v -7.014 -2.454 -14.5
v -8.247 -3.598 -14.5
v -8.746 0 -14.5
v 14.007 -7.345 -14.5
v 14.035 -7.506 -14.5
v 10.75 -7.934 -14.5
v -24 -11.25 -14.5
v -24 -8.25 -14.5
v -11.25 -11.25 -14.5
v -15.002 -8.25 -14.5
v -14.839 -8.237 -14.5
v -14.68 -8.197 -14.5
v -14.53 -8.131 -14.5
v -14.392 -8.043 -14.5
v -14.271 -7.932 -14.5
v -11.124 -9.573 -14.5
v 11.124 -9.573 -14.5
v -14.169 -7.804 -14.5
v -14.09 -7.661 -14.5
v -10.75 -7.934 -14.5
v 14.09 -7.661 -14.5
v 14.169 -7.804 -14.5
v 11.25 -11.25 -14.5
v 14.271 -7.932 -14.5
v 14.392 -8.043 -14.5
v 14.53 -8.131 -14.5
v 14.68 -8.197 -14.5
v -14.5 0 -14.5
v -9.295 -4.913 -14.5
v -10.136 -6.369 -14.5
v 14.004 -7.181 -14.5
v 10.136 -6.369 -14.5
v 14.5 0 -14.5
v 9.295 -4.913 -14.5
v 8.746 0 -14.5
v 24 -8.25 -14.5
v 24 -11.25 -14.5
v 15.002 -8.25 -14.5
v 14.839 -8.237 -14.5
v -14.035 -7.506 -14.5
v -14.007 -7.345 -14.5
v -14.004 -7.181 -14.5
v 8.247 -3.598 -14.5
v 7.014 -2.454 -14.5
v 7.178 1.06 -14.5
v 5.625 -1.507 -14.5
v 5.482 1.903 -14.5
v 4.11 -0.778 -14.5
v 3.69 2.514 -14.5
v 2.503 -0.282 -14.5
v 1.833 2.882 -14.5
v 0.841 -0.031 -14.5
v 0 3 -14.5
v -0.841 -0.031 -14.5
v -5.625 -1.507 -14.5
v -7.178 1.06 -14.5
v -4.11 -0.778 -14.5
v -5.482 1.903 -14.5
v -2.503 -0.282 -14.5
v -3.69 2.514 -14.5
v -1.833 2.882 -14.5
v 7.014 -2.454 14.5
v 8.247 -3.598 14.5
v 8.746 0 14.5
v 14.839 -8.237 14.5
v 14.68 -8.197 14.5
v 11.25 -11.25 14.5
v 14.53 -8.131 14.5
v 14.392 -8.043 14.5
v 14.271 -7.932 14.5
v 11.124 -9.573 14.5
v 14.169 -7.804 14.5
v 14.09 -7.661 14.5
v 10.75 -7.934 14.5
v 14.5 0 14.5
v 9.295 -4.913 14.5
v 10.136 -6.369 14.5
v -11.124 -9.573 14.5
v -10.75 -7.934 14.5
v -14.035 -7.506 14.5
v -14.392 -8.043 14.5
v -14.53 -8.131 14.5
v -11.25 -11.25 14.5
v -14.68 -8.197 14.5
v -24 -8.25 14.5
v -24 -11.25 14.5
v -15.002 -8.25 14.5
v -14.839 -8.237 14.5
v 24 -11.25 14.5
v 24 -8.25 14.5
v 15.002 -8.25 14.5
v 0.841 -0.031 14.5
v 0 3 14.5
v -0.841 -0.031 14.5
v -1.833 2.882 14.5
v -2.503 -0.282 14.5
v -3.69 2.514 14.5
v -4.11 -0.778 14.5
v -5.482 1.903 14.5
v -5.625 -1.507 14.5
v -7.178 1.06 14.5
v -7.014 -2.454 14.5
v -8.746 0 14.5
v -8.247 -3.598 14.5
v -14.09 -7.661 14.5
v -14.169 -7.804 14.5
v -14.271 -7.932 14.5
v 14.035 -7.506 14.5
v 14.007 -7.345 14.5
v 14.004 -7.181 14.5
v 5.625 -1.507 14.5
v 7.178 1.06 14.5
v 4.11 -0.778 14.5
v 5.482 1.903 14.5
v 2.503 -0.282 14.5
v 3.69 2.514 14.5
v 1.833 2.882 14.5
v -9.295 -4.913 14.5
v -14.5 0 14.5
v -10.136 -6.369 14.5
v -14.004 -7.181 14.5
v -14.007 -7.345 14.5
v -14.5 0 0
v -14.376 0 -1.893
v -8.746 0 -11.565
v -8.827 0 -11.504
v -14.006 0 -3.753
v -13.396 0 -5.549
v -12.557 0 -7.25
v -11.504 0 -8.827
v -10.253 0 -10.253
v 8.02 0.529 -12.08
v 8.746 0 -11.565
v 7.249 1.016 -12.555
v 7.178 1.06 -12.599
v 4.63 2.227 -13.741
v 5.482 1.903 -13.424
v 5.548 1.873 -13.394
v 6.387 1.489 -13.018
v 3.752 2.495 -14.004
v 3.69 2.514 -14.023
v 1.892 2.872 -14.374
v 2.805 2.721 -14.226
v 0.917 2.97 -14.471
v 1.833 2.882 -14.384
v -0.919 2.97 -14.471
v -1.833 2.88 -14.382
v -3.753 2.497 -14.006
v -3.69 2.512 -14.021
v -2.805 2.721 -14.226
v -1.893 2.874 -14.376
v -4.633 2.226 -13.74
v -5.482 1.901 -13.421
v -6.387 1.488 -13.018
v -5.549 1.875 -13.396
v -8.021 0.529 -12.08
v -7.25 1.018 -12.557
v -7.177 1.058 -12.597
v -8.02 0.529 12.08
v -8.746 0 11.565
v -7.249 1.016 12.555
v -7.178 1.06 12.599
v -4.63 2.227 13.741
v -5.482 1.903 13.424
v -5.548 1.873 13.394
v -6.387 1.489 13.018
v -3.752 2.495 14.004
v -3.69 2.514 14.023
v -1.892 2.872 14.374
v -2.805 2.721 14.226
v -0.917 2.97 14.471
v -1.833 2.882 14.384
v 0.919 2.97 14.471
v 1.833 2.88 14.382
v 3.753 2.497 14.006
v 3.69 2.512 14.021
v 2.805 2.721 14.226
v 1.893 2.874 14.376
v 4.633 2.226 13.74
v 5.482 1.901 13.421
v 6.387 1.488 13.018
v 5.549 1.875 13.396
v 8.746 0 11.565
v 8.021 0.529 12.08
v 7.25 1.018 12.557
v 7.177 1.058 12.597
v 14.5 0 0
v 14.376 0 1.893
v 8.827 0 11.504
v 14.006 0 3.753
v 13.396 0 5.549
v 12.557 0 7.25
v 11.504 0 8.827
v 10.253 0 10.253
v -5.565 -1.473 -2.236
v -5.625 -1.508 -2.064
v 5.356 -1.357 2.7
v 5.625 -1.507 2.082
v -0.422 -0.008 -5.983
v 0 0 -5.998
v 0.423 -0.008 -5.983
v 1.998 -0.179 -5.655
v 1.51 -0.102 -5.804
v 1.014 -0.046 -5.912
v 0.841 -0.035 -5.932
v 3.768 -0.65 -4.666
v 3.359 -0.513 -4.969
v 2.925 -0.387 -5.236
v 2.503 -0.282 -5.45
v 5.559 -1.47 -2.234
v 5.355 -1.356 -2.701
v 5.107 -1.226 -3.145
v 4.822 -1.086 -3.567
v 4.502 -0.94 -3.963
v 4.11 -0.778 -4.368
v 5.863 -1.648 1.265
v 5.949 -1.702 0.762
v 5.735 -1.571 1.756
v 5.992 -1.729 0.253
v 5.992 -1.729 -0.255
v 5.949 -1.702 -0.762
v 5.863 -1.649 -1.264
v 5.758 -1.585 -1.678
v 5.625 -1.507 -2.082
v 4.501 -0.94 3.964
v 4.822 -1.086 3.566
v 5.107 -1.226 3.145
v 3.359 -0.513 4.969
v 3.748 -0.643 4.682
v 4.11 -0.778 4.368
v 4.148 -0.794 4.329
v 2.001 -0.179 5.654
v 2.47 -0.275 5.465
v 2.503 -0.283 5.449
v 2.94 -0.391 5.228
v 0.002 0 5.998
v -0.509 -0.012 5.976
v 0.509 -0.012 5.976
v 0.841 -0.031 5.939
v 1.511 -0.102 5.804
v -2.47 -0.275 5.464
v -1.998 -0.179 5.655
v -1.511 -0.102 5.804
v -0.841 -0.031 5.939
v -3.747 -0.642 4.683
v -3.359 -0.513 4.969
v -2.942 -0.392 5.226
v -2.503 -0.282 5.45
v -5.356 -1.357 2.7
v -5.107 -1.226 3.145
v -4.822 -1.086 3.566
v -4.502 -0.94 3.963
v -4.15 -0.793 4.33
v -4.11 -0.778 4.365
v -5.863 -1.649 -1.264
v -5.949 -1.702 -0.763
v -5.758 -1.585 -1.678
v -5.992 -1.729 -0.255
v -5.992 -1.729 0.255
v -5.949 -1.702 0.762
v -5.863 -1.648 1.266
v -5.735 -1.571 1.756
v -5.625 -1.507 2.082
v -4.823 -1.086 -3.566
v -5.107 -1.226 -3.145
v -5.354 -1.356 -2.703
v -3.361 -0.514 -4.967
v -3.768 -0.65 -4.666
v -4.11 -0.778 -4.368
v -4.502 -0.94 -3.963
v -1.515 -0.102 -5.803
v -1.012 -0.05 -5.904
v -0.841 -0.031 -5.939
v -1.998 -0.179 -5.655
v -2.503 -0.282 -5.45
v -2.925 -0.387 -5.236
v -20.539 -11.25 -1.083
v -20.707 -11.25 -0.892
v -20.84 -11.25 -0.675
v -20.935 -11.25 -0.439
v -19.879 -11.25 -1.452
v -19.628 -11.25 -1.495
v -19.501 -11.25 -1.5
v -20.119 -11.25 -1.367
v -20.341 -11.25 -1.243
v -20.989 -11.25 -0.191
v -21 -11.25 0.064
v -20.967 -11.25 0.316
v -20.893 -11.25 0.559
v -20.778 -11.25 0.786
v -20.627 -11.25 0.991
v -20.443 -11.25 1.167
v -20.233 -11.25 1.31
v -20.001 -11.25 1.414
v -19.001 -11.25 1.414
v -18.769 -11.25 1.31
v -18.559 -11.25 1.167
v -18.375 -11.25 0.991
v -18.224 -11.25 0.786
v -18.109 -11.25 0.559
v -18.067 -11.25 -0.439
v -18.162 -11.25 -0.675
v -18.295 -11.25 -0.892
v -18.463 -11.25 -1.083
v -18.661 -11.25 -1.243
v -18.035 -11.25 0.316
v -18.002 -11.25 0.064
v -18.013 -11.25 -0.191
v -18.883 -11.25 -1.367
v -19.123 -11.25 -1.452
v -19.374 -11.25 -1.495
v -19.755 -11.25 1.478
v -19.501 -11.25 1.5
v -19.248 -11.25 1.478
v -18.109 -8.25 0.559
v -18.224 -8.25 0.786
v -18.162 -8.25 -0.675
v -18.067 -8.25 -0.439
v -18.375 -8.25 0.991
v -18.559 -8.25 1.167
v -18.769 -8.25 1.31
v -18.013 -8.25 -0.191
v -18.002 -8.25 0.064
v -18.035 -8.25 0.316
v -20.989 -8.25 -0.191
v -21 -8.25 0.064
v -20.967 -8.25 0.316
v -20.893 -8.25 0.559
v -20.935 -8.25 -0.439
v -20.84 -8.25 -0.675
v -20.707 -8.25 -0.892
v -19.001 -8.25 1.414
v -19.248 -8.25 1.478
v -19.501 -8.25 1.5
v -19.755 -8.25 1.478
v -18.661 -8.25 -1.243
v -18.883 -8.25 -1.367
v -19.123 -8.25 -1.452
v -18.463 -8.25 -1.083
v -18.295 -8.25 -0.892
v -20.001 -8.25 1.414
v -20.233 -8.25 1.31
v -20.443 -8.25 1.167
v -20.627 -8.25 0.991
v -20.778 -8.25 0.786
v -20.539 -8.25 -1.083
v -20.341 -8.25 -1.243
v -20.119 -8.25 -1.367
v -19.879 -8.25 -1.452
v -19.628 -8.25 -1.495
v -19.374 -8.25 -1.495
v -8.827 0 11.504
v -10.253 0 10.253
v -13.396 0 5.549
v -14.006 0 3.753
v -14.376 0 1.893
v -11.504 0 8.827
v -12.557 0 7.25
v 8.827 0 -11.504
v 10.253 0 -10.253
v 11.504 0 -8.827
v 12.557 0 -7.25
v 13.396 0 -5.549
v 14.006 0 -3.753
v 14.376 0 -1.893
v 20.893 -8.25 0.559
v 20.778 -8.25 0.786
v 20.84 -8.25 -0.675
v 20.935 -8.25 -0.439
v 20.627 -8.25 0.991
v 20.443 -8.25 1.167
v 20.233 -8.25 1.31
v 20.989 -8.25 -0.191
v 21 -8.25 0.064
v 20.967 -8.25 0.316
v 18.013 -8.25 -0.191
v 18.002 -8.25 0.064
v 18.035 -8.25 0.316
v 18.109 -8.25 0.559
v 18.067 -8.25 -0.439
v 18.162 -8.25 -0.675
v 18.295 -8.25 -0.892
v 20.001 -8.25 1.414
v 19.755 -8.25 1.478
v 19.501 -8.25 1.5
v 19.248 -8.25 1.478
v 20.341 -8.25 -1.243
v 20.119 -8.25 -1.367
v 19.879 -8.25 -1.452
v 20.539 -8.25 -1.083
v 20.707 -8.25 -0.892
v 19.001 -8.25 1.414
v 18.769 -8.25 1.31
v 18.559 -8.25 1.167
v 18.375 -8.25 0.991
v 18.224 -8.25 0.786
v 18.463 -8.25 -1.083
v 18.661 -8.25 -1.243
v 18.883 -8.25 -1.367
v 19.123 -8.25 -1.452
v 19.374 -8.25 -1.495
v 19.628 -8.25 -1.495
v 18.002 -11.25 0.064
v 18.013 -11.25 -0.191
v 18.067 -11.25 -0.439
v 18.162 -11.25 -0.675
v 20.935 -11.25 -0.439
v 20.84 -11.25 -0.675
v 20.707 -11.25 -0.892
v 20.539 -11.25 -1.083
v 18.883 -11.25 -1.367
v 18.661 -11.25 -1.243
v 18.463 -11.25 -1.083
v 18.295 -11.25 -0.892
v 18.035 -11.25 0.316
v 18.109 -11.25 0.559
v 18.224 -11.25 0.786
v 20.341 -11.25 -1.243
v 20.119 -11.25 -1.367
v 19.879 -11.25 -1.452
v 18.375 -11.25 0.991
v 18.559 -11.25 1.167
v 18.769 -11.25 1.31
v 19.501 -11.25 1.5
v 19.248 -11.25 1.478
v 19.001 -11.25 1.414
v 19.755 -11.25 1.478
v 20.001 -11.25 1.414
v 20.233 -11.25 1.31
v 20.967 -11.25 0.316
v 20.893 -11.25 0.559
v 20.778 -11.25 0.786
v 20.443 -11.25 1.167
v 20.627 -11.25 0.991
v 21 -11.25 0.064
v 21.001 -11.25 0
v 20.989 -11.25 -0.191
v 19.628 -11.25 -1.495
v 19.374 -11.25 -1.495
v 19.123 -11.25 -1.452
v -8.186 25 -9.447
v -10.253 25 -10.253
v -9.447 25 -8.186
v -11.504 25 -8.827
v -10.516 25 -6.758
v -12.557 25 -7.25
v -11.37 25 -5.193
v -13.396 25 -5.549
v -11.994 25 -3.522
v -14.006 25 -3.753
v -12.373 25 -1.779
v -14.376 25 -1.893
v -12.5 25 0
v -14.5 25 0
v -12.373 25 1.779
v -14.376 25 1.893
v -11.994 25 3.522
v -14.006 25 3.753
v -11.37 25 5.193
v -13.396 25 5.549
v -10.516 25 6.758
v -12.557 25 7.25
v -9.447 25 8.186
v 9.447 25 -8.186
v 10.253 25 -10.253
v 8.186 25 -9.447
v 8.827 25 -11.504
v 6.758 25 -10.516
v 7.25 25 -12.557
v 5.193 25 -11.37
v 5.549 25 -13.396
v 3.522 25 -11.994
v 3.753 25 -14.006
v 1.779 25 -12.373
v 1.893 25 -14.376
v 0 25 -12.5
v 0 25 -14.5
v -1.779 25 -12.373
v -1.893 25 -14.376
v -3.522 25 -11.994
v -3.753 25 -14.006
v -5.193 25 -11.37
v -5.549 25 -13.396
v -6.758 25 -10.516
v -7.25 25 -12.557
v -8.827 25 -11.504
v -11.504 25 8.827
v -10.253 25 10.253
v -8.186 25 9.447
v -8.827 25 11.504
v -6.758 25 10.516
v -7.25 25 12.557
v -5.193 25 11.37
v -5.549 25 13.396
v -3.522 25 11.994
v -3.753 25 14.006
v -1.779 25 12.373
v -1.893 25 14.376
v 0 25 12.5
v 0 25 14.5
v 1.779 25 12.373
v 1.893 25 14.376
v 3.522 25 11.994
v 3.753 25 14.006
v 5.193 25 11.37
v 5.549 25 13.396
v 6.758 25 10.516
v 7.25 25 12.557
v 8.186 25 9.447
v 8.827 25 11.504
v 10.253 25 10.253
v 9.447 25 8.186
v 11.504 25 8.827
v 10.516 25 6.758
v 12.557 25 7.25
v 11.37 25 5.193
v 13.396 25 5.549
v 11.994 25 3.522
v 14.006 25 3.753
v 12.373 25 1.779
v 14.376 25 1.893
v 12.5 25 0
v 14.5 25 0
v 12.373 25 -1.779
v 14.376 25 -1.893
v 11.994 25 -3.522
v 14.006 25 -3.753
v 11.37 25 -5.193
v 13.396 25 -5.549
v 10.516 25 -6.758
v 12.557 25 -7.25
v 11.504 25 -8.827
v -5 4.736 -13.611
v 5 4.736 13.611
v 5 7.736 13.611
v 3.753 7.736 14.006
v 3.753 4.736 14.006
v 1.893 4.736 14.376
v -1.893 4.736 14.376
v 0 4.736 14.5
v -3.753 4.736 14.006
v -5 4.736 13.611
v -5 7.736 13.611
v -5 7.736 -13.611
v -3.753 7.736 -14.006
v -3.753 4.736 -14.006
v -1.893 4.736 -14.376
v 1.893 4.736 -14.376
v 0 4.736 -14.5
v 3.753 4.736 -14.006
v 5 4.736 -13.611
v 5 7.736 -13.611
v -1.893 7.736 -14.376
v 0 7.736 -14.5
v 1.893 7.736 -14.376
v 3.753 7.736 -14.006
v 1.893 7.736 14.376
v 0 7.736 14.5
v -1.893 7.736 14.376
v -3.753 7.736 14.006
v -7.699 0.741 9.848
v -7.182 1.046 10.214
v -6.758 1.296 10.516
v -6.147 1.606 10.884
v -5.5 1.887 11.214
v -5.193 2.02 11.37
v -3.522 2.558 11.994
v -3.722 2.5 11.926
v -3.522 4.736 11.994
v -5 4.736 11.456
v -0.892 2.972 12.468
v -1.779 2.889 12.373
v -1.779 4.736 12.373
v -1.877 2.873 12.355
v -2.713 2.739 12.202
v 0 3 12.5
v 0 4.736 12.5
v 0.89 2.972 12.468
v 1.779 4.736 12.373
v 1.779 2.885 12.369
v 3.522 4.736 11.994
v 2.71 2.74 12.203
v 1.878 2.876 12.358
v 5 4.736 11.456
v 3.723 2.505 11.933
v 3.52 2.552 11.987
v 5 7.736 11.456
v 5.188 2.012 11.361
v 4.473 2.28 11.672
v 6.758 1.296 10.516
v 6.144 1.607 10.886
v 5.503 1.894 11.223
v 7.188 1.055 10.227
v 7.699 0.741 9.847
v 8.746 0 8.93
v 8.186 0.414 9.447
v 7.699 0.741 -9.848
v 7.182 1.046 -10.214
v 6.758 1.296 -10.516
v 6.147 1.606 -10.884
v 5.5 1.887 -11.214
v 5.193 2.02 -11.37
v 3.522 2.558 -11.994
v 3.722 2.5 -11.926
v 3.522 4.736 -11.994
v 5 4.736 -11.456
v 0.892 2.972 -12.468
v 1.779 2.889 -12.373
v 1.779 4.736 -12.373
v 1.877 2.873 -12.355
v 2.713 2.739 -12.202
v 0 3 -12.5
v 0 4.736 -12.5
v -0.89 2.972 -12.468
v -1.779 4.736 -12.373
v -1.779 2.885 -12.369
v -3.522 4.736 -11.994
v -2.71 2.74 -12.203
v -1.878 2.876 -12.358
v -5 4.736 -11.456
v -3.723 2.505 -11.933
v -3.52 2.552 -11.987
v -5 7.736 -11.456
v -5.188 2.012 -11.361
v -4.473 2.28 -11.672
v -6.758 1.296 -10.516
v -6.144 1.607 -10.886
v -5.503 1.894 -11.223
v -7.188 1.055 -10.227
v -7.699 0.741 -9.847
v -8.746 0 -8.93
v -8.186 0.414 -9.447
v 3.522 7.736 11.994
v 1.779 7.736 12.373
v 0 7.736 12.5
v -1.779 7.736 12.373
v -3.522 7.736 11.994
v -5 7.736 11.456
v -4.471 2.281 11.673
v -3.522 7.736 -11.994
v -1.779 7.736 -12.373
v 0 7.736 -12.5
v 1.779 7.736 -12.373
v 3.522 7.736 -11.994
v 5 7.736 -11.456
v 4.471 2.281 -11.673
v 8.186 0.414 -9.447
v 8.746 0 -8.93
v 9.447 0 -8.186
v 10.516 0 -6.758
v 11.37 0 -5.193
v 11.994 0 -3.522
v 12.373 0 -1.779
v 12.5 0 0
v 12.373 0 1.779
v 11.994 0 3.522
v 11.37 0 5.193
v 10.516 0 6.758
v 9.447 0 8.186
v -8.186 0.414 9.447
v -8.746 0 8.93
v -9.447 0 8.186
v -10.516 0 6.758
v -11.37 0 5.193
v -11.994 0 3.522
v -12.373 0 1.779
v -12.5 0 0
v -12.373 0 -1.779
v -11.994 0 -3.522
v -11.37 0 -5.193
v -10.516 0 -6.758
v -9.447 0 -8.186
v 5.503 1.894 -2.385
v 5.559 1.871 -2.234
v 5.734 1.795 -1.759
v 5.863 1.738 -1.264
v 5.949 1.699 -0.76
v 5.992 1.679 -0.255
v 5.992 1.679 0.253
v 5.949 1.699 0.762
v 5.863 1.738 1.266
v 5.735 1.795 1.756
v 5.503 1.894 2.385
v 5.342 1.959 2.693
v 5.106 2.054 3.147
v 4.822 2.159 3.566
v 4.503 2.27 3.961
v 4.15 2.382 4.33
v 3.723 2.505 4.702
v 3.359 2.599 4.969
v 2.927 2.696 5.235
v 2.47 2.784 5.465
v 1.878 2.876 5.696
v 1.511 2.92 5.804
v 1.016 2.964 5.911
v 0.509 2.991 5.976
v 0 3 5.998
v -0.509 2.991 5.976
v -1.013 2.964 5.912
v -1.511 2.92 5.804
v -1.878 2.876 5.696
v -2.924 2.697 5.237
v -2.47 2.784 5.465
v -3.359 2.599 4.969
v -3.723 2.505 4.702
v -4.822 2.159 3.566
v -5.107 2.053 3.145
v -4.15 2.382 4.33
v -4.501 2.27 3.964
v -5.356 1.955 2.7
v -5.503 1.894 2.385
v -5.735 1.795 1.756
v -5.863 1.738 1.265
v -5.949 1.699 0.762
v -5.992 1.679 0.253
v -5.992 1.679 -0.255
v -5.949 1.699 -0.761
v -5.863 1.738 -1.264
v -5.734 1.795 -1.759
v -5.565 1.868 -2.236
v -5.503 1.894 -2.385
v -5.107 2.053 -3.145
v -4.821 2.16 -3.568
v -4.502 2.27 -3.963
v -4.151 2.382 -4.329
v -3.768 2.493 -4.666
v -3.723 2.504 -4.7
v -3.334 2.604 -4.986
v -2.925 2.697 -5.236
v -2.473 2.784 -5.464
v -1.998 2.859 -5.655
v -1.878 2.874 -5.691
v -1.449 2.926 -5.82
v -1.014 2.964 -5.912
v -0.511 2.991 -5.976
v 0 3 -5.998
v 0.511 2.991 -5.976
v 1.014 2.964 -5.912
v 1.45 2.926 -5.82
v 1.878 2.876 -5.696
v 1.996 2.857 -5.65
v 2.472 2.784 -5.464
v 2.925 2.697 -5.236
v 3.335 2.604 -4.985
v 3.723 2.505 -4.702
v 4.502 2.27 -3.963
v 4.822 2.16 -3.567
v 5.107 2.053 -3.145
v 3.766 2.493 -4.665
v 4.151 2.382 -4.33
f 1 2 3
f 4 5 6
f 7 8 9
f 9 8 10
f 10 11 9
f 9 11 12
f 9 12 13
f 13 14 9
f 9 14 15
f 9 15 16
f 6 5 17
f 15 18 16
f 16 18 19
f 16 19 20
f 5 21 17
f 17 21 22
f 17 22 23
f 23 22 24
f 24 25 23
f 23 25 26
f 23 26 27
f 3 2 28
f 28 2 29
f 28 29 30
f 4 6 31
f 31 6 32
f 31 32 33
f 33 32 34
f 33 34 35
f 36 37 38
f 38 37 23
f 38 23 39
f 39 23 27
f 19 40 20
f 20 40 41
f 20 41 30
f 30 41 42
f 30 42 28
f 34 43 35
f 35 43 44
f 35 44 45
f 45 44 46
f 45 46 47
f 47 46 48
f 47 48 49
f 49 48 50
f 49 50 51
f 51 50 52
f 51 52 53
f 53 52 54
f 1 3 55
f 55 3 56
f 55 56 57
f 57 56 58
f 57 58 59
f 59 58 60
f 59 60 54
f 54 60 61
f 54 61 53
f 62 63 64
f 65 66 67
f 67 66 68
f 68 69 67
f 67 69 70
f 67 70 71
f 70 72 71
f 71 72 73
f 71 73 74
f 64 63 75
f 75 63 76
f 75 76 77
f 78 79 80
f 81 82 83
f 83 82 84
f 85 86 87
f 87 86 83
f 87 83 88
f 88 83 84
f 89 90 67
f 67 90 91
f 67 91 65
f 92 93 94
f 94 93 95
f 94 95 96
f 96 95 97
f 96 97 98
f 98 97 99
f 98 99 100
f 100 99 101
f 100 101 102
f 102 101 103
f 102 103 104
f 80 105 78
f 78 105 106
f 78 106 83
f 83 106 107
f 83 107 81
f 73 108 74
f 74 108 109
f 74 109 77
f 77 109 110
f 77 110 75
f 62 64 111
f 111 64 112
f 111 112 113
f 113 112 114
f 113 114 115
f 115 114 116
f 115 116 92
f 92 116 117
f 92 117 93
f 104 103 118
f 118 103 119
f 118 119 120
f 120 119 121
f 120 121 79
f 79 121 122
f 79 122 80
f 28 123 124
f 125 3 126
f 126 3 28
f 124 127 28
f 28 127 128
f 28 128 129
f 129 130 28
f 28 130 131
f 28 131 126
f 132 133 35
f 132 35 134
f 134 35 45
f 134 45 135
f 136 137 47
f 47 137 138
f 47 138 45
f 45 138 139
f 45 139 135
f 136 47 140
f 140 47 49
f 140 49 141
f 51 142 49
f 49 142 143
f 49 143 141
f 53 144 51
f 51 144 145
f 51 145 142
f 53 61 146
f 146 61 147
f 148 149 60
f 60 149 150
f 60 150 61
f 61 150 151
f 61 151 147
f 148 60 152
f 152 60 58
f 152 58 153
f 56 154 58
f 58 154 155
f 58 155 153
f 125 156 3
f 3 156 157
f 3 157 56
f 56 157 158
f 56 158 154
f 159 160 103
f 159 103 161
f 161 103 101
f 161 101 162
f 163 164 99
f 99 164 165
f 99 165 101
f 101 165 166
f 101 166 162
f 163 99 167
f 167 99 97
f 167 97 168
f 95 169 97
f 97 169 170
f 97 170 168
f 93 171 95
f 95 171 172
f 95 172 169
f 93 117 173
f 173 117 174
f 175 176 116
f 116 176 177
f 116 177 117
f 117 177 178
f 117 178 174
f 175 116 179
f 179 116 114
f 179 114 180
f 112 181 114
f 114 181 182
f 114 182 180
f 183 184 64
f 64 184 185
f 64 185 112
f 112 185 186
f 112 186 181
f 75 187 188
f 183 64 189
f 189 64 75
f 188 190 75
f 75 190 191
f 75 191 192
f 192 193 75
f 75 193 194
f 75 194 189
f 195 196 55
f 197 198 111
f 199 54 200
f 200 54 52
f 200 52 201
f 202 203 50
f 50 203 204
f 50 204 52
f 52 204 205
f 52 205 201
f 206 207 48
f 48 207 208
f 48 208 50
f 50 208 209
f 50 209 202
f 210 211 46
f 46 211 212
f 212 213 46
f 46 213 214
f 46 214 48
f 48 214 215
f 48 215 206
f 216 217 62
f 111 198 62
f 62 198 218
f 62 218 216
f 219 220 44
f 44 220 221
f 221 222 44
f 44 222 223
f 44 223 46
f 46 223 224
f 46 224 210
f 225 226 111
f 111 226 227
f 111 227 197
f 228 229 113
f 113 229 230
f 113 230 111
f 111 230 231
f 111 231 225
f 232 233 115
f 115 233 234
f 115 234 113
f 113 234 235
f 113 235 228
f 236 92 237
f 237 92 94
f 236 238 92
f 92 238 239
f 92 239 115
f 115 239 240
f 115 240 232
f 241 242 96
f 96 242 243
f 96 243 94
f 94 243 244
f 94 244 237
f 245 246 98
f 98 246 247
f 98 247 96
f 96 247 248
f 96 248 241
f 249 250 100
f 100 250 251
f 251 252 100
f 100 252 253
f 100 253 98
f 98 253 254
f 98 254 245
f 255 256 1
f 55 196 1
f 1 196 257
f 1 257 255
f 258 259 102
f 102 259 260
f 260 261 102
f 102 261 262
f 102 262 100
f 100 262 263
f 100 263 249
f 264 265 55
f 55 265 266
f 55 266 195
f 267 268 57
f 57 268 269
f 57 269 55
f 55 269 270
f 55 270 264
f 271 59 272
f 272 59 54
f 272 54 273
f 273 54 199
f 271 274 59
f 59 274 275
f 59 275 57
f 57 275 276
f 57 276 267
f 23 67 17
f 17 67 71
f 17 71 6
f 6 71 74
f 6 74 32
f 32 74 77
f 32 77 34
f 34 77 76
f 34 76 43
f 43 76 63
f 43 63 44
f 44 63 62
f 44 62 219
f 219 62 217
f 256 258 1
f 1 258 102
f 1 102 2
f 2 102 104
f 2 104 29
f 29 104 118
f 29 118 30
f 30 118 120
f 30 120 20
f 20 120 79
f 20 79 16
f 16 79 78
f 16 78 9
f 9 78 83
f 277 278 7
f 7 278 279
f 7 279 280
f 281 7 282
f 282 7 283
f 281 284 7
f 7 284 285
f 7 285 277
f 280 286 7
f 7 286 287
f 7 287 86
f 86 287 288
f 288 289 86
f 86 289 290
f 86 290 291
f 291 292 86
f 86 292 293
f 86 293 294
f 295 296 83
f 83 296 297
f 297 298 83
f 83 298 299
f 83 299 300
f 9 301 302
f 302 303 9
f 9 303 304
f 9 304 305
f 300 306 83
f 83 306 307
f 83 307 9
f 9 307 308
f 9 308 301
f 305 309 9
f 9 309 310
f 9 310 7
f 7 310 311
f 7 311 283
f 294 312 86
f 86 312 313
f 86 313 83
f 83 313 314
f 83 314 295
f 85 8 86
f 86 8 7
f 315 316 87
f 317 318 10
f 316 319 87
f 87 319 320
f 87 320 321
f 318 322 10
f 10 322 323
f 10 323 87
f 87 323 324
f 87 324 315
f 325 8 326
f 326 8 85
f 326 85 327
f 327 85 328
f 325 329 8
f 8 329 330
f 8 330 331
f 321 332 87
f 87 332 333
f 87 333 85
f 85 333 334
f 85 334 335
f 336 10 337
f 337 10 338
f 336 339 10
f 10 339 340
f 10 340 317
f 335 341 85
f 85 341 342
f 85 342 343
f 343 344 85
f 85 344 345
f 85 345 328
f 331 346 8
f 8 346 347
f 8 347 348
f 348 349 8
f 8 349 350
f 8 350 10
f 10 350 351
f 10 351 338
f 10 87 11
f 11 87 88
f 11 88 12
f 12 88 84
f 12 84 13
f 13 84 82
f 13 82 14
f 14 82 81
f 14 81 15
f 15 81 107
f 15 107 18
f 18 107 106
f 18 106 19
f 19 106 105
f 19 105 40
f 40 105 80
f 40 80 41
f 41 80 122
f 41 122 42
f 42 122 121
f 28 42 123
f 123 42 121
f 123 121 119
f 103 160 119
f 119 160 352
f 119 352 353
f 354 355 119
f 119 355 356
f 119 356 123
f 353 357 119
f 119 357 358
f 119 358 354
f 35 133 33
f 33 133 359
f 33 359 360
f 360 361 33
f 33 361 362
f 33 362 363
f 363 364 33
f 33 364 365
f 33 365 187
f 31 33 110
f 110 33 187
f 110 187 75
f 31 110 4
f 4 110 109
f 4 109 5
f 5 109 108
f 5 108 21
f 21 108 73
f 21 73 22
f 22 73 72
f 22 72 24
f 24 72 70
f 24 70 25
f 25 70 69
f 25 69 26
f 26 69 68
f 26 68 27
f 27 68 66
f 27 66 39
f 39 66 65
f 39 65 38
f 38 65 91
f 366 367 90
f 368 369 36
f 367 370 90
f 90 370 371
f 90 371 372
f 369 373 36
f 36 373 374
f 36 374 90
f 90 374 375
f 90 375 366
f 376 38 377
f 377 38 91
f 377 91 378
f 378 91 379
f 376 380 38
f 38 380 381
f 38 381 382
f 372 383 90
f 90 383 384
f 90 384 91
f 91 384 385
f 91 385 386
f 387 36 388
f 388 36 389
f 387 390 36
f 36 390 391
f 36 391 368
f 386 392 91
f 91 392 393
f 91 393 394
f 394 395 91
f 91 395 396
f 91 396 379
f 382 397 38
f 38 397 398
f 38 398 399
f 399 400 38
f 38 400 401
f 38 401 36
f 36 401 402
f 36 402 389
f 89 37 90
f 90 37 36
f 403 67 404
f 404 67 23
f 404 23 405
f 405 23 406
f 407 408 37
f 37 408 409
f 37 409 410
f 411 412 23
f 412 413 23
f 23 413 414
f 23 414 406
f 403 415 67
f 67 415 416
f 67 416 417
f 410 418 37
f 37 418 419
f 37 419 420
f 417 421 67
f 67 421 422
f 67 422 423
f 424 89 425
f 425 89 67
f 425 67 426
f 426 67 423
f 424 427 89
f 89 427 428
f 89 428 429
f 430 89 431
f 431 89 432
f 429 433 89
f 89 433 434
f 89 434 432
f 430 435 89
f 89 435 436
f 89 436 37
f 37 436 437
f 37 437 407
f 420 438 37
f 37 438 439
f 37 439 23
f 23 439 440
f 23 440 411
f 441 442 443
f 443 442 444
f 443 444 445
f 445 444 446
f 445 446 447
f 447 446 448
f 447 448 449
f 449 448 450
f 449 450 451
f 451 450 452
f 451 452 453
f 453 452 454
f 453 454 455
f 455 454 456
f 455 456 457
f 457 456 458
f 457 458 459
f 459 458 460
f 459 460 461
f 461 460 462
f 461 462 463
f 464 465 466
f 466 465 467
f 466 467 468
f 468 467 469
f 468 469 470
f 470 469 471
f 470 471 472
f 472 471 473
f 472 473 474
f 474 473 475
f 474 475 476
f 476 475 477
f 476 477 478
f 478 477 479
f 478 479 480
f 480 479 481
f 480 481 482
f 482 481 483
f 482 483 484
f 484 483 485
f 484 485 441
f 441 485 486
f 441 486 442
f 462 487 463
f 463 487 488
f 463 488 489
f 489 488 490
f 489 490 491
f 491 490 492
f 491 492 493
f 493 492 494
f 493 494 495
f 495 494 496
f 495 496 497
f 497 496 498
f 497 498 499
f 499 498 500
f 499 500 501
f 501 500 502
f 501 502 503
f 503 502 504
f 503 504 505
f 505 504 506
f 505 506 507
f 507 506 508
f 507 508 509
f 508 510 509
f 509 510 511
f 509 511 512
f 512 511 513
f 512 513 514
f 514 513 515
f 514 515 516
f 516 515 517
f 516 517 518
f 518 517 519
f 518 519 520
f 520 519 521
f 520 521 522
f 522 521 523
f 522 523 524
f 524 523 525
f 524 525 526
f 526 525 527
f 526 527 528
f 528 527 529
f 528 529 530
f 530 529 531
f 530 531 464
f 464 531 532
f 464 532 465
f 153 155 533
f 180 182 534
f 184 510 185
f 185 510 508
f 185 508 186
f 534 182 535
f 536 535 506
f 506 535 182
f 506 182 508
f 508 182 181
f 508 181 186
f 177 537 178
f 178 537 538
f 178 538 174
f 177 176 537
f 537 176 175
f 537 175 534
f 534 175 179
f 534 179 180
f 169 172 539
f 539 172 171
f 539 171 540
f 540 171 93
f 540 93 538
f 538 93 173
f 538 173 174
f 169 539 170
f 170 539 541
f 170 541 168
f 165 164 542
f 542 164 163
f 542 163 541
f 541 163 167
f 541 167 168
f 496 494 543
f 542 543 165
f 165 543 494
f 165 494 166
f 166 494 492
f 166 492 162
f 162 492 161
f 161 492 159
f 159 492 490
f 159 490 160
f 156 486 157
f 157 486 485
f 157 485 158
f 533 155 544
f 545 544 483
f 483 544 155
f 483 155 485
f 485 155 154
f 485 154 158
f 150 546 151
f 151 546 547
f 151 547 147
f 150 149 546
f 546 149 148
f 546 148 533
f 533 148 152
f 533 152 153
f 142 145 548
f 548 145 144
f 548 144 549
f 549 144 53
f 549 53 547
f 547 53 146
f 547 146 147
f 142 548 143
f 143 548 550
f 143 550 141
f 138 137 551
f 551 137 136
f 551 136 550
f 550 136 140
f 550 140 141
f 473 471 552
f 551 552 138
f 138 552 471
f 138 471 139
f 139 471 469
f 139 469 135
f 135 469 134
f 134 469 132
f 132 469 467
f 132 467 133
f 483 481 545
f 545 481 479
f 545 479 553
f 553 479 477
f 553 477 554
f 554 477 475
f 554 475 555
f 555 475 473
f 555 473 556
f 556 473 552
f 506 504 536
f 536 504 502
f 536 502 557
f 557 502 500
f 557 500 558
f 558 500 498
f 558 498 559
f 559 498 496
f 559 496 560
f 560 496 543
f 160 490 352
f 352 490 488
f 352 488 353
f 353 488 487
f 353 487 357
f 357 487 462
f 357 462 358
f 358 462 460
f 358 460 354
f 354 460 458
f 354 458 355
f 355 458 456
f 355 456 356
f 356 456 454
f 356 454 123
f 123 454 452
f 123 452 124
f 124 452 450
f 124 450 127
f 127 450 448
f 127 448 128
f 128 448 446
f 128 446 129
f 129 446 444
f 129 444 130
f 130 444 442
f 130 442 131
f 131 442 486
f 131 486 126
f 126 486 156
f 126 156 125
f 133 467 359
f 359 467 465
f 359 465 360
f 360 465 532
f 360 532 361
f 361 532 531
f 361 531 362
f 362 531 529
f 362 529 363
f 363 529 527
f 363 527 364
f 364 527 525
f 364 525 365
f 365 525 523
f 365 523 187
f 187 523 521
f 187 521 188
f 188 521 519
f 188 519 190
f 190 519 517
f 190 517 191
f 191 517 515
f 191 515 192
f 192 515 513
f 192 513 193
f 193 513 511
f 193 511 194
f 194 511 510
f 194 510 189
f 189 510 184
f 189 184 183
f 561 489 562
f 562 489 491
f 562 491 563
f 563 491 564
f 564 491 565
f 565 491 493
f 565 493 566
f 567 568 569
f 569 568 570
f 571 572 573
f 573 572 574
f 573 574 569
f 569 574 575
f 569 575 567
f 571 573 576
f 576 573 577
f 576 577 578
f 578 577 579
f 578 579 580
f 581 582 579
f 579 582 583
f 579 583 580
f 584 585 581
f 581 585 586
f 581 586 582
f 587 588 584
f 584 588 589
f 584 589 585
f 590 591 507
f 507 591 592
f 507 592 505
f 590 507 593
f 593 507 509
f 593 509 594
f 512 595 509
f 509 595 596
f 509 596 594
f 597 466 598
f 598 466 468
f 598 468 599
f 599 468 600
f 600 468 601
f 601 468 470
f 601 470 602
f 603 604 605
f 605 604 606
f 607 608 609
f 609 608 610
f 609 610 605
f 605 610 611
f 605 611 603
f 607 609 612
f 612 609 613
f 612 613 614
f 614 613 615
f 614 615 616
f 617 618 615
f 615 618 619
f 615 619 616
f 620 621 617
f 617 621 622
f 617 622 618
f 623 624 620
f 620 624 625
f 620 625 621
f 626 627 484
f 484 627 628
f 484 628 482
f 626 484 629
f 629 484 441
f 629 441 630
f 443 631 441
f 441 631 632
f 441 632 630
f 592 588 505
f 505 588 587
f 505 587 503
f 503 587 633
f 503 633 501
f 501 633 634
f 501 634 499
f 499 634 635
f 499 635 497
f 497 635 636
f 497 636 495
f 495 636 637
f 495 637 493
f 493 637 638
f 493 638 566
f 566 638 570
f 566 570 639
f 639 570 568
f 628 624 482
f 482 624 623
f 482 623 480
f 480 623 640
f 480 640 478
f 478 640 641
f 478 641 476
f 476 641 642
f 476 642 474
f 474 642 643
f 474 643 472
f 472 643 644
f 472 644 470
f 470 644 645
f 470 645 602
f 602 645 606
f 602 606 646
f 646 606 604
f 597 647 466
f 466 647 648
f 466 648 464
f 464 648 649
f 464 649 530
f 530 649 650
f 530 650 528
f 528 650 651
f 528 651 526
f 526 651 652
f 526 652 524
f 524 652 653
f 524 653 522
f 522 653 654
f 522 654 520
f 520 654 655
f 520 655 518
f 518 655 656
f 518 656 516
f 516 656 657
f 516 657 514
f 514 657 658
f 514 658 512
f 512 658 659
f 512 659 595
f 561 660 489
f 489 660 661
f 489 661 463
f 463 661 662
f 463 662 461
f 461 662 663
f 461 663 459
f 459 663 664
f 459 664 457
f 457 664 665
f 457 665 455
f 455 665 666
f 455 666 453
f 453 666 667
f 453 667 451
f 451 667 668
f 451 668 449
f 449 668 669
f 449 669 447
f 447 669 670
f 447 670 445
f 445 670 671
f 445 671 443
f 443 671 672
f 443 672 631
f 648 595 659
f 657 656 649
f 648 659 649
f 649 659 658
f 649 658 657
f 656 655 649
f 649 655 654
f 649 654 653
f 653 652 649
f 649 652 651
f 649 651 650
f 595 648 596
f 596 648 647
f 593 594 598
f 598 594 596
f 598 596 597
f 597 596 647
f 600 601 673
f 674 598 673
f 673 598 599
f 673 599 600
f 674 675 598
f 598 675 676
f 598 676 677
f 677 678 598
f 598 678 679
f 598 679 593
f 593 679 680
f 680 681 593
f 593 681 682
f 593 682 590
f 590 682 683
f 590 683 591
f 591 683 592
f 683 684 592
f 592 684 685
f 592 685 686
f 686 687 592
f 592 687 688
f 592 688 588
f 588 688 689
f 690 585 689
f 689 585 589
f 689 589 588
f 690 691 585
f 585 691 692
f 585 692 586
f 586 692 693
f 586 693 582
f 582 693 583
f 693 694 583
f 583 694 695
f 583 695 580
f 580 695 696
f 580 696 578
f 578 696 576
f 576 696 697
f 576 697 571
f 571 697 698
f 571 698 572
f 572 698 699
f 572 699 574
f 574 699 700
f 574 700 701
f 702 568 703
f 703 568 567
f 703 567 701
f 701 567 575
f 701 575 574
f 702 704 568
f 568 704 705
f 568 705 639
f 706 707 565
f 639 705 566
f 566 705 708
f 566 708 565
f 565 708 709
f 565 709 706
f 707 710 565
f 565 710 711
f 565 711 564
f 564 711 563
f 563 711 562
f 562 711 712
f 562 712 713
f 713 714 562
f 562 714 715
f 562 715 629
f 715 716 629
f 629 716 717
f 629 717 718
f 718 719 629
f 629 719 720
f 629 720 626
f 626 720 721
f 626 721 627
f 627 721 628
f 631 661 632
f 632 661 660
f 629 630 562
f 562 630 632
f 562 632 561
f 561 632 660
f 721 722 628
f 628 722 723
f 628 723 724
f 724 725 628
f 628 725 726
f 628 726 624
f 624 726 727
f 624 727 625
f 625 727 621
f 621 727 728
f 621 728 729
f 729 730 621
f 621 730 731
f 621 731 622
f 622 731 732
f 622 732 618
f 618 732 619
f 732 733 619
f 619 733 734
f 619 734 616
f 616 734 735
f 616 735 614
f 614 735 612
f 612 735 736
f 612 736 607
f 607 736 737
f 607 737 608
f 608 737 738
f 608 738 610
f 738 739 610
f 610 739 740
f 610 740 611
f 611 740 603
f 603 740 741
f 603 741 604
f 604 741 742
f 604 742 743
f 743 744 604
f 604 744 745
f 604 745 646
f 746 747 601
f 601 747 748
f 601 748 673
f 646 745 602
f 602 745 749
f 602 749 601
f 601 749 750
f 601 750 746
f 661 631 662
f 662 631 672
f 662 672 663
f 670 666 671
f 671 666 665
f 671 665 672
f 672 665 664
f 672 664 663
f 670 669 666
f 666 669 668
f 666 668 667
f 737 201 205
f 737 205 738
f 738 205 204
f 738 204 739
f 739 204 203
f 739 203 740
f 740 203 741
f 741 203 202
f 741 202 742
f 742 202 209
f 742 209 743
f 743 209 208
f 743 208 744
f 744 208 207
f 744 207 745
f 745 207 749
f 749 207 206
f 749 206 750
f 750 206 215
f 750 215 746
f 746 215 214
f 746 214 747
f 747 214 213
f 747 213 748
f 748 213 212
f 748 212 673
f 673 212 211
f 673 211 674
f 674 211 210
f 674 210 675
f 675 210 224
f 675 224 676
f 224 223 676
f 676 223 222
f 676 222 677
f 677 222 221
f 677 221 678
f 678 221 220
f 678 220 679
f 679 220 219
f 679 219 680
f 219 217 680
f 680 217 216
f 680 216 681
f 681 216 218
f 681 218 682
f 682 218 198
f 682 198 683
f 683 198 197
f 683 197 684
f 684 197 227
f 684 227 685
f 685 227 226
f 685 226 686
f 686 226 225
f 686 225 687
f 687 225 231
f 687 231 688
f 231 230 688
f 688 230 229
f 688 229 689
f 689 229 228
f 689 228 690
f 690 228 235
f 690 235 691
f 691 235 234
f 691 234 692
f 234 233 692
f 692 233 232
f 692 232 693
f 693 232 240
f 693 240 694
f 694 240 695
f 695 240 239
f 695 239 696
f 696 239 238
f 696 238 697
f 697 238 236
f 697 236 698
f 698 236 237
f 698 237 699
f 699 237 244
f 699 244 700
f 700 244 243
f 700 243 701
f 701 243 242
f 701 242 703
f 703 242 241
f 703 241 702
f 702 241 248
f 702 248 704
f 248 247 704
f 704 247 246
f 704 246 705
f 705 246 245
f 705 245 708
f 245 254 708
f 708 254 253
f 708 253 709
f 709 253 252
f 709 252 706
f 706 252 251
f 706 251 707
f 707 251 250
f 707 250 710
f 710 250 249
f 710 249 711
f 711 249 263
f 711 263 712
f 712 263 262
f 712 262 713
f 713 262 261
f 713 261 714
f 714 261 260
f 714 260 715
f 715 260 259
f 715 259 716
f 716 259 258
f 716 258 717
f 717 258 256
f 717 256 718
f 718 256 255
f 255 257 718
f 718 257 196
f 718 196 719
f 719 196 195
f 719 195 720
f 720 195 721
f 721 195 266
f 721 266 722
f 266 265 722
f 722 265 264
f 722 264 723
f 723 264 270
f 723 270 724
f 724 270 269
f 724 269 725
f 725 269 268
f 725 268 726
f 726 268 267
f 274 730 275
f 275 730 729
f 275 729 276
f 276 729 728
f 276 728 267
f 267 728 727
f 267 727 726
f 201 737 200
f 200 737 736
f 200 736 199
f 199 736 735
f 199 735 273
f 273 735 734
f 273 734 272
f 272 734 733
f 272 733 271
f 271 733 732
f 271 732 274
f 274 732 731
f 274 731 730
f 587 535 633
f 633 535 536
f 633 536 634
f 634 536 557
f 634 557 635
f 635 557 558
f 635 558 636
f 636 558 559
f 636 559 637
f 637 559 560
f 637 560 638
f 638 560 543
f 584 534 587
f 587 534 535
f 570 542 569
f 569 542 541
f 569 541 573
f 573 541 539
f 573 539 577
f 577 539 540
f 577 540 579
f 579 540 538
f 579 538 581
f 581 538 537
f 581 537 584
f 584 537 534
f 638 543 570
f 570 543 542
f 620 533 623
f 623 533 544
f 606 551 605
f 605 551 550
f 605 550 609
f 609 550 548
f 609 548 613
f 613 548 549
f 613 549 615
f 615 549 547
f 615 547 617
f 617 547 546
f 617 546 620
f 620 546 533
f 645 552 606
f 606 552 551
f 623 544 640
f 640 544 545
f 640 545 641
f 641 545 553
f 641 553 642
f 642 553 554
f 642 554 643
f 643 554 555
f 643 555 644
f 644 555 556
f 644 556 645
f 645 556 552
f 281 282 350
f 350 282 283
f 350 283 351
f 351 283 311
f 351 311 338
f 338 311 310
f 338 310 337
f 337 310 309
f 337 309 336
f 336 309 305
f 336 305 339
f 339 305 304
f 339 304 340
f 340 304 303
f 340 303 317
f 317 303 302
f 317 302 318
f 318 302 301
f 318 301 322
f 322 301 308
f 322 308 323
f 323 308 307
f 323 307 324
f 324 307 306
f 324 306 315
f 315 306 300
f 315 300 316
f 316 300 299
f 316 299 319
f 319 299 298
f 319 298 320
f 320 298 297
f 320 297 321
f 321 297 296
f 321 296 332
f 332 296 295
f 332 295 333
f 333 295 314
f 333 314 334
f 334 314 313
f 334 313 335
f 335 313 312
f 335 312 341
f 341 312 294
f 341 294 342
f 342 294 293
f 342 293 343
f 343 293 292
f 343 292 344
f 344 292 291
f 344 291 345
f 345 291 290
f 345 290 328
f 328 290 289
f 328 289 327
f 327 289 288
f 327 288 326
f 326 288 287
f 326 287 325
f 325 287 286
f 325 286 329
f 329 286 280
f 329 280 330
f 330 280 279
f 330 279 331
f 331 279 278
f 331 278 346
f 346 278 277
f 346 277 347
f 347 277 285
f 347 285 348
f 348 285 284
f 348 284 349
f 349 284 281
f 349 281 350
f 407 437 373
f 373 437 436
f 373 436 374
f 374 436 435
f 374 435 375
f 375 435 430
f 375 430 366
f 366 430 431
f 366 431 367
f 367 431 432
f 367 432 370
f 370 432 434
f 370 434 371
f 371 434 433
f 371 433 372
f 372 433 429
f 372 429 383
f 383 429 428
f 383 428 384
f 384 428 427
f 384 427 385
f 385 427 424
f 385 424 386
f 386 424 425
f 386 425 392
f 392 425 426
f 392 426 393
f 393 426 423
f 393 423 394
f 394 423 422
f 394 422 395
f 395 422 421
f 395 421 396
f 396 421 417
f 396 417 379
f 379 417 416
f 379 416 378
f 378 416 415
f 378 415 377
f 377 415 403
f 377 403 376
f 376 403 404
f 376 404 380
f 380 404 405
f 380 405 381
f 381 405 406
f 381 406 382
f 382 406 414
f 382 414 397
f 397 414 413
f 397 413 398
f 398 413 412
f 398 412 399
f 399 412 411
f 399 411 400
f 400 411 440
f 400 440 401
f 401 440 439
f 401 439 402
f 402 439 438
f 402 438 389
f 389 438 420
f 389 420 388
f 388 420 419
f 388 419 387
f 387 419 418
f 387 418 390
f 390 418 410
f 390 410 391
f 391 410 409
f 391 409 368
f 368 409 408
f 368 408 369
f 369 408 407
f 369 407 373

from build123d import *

# Parameters (mm, degrees)
SKETCH1_R                = 14.5
SKETCH1_R_2              = 12.5
BOSS_EXTRUDE1_DEPTH      = 25
BOSS_EXTRUDE2_DEPTH      = 14.5
BOSS_EXTRUDE2_DEPTH_BACK = 14.5
SKETCH3_R                = 5.997794038
CUT_EXTRUDE1_DEPTH       = 25
SKETCH4_W                = 10
SKETCH4_H                = 3
CUT_EXTRUDE2_DEPTH       = 30
SKETCH6_R                = 1.5
CUT_EXTRUDE4_DEPTH       = 30


with BuildPart() as part:
    # Sketch1 → Boss-Extrude1 (new body)
    with BuildSketch(Plane(origin=(0, 0, 0), x_dir=(1, 0, 0), z_dir=(0, 1, 0))):
        Circle(SKETCH1_R)
        Circle(SKETCH1_R_2, mode=Mode.SUBTRACT)
    extrude(amount=BOSS_EXTRUDE1_DEPTH)

    # Sketch2 → Boss-Extrude2 (add, two sides: drawn at the far end of the back side and taken through both)
    with BuildSketch(Plane.XY.offset(-BOSS_EXTRUDE2_DEPTH_BACK)):
        with BuildLine():
            Line((-11.25, -11.25), (-20, -11.25))
            Line((-20, -11.25), (-24, -11.25))
            Line((-24, -11.25), (-24, -8.25))
            Line((-24, -8.25), (-20, -8.25))
            Line((-20, -8.25), (-15.002024714, -8.25))
            ThreePointArc((-15.002024714, -8.25), (-14.270980746, -7.932330358), (-14.004397729, -7.181149435))
            Line((-14.004397729, -7.181149435), (-14.5, 0))
            Line((-14.5, 0), (-8.746427842, 0))
            ThreePointArc((-8.746427842, 0), (0, 3), (8.746427842, 0))
            Line((8.746427842, 0), (14.5, 0))
            Line((14.5, 0), (14.004397729, -7.181149435))
            ThreePointArc((14.004397729, -7.181149435), (14.270980746, -7.932330358), (15.002024714, -8.25))
            Line((15.002024714, -8.25), (20, -8.25))
            Line((20, -8.25), (24, -8.25))
            Line((24, -8.25), (24, -11.25))
            Line((24, -11.25), (20, -11.25))
            Line((20, -11.25), (11.25, -11.25))
            ThreePointArc((11.25, -11.25), (0, 0), (-11.25, -11.25))
        make_face()
    extrude(amount=BOSS_EXTRUDE2_DEPTH + BOSS_EXTRUDE2_DEPTH_BACK)

    # Sketch3 → Cut-Extrude1 (cut)
    with BuildSketch(Plane.XZ.offset(11.25)):
        Circle(SKETCH3_R)
    extrude(amount=-CUT_EXTRUDE1_DEPTH, mode=Mode.SUBTRACT)

    # Sketch4 → Cut-Extrude2 (cut)
    with BuildSketch(Plane(origin=(0, 0, -14.5), x_dir=(-1, 0, 0), z_dir=(0, 0, -1))):
        with Locations((0, 6.23565899)):
            Rectangle(SKETCH4_W, SKETCH4_H)
    extrude(amount=-CUT_EXTRUDE2_DEPTH, mode=Mode.SUBTRACT)

    # Sketch6 → Cut-Extrude4 (cut)
    with BuildSketch(Plane(origin=(0, -8.25, 0), x_dir=(1, 0, 0), z_dir=(0, 1, 0))):
        with Locations((-19.501012357, 0)):
            Circle(SKETCH6_R)
        with Locations((19.501012357, 0)):
            Circle(SKETCH6_R)
    extrude(amount=-CUT_EXTRUDE4_DEPTH, mode=Mode.SUBTRACT)


solid = part.part
